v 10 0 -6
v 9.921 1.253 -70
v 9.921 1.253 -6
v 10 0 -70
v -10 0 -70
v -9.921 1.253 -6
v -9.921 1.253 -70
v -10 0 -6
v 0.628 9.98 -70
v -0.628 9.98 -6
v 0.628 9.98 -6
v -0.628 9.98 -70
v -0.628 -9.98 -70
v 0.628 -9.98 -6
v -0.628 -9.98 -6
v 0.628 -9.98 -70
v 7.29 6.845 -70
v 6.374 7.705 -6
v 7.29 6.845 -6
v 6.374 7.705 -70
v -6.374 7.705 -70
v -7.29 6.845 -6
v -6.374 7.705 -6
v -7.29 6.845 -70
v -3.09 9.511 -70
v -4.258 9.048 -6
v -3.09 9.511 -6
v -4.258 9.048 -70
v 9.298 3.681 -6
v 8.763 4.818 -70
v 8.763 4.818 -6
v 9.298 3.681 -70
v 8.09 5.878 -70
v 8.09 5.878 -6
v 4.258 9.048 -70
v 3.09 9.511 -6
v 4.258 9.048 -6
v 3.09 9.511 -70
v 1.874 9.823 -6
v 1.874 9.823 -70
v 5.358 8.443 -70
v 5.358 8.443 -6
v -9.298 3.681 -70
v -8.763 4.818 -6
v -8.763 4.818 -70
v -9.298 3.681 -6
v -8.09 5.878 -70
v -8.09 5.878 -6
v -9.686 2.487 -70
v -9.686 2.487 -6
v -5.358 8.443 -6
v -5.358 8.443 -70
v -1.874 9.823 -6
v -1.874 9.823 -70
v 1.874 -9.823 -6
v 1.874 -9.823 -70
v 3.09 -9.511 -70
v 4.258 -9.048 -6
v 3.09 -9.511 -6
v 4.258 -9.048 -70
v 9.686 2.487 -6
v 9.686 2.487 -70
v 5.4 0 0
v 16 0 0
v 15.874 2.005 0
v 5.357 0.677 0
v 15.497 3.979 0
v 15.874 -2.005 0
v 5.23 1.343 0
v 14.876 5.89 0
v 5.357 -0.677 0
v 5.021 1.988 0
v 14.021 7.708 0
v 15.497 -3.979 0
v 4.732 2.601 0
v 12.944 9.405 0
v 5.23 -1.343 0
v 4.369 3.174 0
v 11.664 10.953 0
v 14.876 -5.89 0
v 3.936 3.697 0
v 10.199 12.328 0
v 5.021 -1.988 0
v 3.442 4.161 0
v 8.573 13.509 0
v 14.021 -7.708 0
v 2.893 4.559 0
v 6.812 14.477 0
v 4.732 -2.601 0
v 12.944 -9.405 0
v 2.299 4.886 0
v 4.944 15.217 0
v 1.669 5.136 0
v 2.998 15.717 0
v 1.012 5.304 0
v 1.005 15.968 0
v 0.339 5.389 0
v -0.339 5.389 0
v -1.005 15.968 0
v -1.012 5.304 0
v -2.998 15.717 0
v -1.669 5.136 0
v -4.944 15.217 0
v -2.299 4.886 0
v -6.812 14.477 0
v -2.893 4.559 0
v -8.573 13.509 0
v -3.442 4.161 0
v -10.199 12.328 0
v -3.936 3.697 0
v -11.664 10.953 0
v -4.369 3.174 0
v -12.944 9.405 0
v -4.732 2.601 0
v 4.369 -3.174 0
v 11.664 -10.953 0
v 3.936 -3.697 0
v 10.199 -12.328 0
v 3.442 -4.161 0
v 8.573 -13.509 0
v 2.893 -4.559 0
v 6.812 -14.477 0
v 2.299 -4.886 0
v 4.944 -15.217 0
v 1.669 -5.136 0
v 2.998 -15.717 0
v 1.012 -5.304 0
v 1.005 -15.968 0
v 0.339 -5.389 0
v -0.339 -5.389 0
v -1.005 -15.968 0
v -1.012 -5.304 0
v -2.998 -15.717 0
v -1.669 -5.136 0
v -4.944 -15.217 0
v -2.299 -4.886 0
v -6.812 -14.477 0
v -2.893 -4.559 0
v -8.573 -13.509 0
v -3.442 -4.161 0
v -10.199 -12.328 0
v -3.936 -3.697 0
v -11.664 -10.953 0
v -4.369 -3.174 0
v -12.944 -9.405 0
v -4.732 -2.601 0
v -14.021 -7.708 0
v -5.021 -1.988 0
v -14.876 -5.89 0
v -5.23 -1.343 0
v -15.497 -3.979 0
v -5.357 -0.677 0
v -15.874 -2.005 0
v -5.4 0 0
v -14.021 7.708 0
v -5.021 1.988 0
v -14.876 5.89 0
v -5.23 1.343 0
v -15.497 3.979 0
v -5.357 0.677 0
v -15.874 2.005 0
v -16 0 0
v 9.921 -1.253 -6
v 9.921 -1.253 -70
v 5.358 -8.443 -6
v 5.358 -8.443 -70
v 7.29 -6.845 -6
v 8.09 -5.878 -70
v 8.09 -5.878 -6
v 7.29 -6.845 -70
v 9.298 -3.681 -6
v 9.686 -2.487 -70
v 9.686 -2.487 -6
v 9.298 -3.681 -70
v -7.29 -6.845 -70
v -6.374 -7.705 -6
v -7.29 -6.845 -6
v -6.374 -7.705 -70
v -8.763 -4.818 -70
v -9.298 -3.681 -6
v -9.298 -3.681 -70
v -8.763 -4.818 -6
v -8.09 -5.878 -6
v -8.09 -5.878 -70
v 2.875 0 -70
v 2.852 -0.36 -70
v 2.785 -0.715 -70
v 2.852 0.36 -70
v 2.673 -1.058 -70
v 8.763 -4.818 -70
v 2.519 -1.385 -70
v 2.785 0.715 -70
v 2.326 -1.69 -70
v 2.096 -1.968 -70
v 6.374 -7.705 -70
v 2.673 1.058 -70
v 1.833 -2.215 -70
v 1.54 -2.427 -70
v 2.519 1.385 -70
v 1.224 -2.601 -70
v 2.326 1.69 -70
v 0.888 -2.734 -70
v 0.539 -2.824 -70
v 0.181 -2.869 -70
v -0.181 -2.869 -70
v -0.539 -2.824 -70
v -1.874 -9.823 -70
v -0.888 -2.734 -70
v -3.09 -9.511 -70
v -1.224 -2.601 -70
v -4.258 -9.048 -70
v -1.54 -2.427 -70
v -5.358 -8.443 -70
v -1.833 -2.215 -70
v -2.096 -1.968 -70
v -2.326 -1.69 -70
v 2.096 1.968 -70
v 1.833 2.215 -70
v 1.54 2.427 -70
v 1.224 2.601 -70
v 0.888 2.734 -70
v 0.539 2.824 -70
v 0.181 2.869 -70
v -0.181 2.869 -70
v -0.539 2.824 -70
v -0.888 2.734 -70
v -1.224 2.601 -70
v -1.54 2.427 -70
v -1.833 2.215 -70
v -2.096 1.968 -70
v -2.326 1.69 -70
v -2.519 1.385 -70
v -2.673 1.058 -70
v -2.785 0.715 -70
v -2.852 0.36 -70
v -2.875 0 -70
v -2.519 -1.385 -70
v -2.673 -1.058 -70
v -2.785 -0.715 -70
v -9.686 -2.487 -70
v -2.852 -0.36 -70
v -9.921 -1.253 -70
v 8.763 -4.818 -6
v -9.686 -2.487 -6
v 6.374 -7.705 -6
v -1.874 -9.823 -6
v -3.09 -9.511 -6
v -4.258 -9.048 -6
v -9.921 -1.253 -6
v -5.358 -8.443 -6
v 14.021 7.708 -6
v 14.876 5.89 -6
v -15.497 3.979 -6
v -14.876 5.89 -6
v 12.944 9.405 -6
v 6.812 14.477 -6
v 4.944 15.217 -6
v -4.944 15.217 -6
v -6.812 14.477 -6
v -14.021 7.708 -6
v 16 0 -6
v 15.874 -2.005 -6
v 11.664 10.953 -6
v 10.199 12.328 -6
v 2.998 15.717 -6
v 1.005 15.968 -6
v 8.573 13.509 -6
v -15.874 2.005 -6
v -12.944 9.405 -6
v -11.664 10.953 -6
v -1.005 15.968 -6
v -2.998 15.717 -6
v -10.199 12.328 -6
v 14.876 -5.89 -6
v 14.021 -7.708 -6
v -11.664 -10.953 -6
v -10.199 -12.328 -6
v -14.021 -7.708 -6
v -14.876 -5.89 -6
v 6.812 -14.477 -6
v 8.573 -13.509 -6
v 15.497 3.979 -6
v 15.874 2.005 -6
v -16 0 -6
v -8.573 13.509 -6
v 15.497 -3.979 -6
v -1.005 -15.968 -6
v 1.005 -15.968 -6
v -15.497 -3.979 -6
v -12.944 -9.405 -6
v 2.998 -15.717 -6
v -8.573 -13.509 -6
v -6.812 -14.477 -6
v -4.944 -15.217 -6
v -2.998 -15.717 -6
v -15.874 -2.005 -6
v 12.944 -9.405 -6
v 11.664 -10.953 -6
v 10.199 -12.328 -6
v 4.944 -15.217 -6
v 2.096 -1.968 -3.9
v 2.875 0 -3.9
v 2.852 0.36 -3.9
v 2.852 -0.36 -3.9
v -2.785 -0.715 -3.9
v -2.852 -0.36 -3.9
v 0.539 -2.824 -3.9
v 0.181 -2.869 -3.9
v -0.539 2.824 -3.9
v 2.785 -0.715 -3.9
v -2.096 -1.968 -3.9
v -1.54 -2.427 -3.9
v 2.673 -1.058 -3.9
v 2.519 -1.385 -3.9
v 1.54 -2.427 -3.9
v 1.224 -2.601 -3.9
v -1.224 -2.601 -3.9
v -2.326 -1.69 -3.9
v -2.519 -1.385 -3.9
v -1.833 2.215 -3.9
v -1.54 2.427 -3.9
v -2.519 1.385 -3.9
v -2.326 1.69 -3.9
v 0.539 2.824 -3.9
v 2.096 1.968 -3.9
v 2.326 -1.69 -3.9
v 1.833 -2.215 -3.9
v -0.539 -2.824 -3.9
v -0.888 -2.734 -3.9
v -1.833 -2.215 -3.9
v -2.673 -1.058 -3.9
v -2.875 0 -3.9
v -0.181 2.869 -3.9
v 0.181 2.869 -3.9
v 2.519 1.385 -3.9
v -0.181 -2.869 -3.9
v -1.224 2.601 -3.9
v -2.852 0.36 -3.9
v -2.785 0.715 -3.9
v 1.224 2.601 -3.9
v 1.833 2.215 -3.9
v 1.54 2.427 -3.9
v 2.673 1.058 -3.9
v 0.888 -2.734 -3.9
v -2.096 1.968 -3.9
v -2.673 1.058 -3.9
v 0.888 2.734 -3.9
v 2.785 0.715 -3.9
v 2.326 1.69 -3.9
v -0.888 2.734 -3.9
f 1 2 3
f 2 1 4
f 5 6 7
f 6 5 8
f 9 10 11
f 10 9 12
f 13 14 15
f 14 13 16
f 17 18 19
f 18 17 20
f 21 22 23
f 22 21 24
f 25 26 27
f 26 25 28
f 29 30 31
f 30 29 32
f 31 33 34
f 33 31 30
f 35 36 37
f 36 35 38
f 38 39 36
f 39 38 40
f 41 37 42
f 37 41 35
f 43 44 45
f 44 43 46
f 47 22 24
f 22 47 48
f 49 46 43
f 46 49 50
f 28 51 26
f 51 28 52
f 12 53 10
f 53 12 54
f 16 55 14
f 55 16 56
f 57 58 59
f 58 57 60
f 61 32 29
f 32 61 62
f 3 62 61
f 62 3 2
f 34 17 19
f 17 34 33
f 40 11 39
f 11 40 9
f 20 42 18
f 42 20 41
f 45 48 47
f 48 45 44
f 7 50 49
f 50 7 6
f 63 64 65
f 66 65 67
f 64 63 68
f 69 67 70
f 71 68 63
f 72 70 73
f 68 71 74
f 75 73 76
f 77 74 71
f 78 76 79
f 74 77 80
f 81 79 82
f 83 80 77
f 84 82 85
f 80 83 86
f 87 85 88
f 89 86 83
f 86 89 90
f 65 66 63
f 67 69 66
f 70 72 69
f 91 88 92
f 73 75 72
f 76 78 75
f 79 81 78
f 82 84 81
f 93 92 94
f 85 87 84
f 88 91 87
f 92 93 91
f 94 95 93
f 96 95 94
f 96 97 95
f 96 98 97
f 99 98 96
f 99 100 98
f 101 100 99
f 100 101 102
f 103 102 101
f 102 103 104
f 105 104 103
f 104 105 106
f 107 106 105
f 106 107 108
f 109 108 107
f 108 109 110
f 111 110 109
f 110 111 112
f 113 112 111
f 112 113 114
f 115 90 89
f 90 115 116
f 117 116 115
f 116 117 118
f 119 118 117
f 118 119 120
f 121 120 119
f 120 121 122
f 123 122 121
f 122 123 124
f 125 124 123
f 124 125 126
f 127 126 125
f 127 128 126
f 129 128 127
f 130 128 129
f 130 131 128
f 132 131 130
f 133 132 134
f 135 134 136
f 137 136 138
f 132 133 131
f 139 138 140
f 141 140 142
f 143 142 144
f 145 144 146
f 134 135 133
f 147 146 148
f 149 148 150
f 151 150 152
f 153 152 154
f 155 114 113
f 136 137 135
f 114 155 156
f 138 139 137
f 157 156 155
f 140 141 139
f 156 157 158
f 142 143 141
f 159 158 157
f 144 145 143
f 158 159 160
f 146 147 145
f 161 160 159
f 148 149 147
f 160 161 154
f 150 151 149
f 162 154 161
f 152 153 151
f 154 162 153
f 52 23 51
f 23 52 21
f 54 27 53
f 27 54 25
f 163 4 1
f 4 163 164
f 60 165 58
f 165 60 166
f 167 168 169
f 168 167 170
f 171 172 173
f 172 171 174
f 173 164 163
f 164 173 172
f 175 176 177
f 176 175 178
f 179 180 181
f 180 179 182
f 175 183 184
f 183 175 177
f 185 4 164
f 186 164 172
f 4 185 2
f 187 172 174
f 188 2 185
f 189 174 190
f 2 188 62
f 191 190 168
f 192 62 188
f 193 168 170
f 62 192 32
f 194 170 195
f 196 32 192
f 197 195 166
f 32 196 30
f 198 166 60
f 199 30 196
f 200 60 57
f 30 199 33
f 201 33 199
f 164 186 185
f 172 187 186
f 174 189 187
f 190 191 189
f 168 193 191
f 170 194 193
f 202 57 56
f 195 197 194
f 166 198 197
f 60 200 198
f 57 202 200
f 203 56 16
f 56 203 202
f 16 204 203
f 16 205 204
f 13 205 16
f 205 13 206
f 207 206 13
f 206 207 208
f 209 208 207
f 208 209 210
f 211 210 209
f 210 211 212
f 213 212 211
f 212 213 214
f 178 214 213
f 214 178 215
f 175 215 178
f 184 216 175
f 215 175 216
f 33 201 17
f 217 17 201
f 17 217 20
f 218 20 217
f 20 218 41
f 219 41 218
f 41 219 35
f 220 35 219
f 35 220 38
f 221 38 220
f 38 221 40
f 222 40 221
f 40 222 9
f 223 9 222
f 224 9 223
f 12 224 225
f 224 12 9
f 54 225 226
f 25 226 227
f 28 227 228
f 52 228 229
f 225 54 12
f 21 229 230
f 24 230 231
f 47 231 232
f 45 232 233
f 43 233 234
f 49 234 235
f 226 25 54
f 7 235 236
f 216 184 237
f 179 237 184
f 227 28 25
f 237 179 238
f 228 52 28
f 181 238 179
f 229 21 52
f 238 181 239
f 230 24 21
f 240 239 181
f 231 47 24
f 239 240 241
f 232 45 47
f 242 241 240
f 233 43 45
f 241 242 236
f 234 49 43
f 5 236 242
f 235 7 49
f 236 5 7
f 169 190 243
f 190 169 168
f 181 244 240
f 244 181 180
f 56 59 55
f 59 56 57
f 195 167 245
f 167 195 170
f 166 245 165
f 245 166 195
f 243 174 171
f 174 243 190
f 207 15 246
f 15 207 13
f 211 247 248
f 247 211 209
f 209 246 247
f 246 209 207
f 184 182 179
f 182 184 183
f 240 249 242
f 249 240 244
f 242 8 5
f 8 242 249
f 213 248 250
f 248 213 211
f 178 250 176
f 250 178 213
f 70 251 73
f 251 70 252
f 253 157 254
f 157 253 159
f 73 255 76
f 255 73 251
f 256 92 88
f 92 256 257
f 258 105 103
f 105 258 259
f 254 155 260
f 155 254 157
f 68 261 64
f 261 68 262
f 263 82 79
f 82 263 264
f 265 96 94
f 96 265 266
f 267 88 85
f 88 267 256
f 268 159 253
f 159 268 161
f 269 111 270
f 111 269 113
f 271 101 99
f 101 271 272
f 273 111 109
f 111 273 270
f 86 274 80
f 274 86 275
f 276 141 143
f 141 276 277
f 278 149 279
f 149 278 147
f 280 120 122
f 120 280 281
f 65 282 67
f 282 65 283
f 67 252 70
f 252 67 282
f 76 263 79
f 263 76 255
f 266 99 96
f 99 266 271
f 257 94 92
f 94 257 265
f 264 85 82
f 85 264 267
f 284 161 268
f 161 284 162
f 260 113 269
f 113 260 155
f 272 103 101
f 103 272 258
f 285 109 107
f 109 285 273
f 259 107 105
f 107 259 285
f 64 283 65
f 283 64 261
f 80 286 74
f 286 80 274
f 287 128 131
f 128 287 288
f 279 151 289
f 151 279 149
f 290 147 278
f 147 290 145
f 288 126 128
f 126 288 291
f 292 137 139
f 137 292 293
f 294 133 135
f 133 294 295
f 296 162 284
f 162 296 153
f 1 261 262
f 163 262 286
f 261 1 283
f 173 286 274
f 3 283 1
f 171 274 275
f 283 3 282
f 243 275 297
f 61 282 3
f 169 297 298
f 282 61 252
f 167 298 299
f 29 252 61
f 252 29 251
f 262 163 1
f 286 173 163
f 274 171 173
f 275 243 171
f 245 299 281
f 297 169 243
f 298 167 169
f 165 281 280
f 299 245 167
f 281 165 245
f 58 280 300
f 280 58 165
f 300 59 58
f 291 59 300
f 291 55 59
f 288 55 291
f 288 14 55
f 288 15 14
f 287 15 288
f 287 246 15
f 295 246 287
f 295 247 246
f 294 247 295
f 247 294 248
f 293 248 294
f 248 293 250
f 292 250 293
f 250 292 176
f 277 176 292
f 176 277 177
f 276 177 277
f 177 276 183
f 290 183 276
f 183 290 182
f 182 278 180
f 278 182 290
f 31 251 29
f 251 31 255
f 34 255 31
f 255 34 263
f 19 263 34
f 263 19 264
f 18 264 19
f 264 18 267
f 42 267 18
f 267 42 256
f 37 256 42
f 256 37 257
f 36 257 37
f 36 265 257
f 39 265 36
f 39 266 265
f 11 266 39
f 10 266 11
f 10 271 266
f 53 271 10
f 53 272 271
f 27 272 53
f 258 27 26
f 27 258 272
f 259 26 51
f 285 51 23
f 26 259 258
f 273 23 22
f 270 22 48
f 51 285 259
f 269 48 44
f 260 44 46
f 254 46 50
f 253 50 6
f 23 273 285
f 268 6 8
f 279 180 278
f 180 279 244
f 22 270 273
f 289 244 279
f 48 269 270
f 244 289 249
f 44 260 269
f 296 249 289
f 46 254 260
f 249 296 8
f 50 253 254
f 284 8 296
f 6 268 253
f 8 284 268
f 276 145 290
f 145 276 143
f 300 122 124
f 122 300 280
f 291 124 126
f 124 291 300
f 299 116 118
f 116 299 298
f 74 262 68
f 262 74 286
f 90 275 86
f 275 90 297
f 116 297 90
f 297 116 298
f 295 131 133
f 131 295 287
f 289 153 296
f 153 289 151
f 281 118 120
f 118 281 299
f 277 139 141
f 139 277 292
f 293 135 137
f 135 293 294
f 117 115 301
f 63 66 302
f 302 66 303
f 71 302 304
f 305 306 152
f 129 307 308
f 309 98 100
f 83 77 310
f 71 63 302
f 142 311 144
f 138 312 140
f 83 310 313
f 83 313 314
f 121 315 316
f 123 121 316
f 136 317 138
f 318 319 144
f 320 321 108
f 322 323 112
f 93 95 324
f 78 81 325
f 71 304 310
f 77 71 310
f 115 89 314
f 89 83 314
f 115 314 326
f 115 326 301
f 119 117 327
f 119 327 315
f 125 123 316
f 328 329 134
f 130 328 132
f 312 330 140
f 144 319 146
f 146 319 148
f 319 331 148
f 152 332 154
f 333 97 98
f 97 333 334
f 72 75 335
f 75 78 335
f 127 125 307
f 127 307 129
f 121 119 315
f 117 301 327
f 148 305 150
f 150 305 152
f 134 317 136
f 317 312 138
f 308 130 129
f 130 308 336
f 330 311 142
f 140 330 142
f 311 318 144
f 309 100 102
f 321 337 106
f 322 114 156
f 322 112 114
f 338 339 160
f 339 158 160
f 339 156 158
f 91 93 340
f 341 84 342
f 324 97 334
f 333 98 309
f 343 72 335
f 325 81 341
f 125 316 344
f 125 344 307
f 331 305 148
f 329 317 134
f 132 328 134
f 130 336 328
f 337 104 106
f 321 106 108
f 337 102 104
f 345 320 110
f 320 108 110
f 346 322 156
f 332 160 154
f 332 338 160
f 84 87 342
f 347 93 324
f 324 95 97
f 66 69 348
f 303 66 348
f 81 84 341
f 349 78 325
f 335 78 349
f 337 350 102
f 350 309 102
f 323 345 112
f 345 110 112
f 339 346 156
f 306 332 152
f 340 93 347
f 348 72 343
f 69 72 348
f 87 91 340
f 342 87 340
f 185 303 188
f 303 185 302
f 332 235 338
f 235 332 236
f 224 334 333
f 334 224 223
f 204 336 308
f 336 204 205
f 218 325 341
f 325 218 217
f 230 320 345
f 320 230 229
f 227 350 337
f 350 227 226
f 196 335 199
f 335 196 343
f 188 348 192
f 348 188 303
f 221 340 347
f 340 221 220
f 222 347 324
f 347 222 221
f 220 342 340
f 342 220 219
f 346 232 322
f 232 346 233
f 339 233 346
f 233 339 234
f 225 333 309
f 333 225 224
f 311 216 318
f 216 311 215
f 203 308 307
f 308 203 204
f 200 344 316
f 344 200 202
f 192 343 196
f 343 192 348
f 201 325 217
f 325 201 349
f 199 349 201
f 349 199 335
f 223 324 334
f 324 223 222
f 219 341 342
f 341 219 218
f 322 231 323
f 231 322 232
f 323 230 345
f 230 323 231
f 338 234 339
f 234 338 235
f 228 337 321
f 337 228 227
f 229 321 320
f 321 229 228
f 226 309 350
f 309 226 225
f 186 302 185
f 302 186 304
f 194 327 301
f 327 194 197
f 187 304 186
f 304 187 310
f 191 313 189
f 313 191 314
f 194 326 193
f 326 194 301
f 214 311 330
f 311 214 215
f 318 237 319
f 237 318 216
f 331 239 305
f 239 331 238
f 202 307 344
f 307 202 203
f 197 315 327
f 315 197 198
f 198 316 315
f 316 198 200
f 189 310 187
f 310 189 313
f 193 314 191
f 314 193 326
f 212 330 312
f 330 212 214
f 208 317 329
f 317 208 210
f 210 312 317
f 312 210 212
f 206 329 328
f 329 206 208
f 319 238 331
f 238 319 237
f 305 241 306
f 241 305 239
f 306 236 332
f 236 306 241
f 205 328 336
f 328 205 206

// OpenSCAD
$fn = 50;


difference() {
	union() {
		translate(v = [0, 0, -70.0000000000]) {
			cylinder(h = 70, r = 10.0000000000);
		}
		translate(v = [0, 0, -6.0000000000]) {
			cylinder(h = 6, r = 16.0000000000);
		}
	}
	union() {
		translate(v = [0, 0, 0]) {
			rotate(a = [0, 0, 0]) {
				difference() {
					union() {
						#translate(v = [0, 0, -70.0000000000]) {
							cylinder(h = 70, r = 2.6000000000);
						}
						#translate(v = [0, 0, -3.9000000000]) {
							cylinder(h = 3.9000000000, r1 = 2.8750000000, r2 = 5.4000000000);
						}
						#translate(v = [0, 0, -70.0000000000]) {
							cylinder(h = 70, r = 2.8750000000);
						}
						#translate(v = [0, 0, -70.0000000000]) {
							cylinder(h = 70, r = 2.6000000000);
						}
					}
					union();
				}
			}
		}
	}
}
